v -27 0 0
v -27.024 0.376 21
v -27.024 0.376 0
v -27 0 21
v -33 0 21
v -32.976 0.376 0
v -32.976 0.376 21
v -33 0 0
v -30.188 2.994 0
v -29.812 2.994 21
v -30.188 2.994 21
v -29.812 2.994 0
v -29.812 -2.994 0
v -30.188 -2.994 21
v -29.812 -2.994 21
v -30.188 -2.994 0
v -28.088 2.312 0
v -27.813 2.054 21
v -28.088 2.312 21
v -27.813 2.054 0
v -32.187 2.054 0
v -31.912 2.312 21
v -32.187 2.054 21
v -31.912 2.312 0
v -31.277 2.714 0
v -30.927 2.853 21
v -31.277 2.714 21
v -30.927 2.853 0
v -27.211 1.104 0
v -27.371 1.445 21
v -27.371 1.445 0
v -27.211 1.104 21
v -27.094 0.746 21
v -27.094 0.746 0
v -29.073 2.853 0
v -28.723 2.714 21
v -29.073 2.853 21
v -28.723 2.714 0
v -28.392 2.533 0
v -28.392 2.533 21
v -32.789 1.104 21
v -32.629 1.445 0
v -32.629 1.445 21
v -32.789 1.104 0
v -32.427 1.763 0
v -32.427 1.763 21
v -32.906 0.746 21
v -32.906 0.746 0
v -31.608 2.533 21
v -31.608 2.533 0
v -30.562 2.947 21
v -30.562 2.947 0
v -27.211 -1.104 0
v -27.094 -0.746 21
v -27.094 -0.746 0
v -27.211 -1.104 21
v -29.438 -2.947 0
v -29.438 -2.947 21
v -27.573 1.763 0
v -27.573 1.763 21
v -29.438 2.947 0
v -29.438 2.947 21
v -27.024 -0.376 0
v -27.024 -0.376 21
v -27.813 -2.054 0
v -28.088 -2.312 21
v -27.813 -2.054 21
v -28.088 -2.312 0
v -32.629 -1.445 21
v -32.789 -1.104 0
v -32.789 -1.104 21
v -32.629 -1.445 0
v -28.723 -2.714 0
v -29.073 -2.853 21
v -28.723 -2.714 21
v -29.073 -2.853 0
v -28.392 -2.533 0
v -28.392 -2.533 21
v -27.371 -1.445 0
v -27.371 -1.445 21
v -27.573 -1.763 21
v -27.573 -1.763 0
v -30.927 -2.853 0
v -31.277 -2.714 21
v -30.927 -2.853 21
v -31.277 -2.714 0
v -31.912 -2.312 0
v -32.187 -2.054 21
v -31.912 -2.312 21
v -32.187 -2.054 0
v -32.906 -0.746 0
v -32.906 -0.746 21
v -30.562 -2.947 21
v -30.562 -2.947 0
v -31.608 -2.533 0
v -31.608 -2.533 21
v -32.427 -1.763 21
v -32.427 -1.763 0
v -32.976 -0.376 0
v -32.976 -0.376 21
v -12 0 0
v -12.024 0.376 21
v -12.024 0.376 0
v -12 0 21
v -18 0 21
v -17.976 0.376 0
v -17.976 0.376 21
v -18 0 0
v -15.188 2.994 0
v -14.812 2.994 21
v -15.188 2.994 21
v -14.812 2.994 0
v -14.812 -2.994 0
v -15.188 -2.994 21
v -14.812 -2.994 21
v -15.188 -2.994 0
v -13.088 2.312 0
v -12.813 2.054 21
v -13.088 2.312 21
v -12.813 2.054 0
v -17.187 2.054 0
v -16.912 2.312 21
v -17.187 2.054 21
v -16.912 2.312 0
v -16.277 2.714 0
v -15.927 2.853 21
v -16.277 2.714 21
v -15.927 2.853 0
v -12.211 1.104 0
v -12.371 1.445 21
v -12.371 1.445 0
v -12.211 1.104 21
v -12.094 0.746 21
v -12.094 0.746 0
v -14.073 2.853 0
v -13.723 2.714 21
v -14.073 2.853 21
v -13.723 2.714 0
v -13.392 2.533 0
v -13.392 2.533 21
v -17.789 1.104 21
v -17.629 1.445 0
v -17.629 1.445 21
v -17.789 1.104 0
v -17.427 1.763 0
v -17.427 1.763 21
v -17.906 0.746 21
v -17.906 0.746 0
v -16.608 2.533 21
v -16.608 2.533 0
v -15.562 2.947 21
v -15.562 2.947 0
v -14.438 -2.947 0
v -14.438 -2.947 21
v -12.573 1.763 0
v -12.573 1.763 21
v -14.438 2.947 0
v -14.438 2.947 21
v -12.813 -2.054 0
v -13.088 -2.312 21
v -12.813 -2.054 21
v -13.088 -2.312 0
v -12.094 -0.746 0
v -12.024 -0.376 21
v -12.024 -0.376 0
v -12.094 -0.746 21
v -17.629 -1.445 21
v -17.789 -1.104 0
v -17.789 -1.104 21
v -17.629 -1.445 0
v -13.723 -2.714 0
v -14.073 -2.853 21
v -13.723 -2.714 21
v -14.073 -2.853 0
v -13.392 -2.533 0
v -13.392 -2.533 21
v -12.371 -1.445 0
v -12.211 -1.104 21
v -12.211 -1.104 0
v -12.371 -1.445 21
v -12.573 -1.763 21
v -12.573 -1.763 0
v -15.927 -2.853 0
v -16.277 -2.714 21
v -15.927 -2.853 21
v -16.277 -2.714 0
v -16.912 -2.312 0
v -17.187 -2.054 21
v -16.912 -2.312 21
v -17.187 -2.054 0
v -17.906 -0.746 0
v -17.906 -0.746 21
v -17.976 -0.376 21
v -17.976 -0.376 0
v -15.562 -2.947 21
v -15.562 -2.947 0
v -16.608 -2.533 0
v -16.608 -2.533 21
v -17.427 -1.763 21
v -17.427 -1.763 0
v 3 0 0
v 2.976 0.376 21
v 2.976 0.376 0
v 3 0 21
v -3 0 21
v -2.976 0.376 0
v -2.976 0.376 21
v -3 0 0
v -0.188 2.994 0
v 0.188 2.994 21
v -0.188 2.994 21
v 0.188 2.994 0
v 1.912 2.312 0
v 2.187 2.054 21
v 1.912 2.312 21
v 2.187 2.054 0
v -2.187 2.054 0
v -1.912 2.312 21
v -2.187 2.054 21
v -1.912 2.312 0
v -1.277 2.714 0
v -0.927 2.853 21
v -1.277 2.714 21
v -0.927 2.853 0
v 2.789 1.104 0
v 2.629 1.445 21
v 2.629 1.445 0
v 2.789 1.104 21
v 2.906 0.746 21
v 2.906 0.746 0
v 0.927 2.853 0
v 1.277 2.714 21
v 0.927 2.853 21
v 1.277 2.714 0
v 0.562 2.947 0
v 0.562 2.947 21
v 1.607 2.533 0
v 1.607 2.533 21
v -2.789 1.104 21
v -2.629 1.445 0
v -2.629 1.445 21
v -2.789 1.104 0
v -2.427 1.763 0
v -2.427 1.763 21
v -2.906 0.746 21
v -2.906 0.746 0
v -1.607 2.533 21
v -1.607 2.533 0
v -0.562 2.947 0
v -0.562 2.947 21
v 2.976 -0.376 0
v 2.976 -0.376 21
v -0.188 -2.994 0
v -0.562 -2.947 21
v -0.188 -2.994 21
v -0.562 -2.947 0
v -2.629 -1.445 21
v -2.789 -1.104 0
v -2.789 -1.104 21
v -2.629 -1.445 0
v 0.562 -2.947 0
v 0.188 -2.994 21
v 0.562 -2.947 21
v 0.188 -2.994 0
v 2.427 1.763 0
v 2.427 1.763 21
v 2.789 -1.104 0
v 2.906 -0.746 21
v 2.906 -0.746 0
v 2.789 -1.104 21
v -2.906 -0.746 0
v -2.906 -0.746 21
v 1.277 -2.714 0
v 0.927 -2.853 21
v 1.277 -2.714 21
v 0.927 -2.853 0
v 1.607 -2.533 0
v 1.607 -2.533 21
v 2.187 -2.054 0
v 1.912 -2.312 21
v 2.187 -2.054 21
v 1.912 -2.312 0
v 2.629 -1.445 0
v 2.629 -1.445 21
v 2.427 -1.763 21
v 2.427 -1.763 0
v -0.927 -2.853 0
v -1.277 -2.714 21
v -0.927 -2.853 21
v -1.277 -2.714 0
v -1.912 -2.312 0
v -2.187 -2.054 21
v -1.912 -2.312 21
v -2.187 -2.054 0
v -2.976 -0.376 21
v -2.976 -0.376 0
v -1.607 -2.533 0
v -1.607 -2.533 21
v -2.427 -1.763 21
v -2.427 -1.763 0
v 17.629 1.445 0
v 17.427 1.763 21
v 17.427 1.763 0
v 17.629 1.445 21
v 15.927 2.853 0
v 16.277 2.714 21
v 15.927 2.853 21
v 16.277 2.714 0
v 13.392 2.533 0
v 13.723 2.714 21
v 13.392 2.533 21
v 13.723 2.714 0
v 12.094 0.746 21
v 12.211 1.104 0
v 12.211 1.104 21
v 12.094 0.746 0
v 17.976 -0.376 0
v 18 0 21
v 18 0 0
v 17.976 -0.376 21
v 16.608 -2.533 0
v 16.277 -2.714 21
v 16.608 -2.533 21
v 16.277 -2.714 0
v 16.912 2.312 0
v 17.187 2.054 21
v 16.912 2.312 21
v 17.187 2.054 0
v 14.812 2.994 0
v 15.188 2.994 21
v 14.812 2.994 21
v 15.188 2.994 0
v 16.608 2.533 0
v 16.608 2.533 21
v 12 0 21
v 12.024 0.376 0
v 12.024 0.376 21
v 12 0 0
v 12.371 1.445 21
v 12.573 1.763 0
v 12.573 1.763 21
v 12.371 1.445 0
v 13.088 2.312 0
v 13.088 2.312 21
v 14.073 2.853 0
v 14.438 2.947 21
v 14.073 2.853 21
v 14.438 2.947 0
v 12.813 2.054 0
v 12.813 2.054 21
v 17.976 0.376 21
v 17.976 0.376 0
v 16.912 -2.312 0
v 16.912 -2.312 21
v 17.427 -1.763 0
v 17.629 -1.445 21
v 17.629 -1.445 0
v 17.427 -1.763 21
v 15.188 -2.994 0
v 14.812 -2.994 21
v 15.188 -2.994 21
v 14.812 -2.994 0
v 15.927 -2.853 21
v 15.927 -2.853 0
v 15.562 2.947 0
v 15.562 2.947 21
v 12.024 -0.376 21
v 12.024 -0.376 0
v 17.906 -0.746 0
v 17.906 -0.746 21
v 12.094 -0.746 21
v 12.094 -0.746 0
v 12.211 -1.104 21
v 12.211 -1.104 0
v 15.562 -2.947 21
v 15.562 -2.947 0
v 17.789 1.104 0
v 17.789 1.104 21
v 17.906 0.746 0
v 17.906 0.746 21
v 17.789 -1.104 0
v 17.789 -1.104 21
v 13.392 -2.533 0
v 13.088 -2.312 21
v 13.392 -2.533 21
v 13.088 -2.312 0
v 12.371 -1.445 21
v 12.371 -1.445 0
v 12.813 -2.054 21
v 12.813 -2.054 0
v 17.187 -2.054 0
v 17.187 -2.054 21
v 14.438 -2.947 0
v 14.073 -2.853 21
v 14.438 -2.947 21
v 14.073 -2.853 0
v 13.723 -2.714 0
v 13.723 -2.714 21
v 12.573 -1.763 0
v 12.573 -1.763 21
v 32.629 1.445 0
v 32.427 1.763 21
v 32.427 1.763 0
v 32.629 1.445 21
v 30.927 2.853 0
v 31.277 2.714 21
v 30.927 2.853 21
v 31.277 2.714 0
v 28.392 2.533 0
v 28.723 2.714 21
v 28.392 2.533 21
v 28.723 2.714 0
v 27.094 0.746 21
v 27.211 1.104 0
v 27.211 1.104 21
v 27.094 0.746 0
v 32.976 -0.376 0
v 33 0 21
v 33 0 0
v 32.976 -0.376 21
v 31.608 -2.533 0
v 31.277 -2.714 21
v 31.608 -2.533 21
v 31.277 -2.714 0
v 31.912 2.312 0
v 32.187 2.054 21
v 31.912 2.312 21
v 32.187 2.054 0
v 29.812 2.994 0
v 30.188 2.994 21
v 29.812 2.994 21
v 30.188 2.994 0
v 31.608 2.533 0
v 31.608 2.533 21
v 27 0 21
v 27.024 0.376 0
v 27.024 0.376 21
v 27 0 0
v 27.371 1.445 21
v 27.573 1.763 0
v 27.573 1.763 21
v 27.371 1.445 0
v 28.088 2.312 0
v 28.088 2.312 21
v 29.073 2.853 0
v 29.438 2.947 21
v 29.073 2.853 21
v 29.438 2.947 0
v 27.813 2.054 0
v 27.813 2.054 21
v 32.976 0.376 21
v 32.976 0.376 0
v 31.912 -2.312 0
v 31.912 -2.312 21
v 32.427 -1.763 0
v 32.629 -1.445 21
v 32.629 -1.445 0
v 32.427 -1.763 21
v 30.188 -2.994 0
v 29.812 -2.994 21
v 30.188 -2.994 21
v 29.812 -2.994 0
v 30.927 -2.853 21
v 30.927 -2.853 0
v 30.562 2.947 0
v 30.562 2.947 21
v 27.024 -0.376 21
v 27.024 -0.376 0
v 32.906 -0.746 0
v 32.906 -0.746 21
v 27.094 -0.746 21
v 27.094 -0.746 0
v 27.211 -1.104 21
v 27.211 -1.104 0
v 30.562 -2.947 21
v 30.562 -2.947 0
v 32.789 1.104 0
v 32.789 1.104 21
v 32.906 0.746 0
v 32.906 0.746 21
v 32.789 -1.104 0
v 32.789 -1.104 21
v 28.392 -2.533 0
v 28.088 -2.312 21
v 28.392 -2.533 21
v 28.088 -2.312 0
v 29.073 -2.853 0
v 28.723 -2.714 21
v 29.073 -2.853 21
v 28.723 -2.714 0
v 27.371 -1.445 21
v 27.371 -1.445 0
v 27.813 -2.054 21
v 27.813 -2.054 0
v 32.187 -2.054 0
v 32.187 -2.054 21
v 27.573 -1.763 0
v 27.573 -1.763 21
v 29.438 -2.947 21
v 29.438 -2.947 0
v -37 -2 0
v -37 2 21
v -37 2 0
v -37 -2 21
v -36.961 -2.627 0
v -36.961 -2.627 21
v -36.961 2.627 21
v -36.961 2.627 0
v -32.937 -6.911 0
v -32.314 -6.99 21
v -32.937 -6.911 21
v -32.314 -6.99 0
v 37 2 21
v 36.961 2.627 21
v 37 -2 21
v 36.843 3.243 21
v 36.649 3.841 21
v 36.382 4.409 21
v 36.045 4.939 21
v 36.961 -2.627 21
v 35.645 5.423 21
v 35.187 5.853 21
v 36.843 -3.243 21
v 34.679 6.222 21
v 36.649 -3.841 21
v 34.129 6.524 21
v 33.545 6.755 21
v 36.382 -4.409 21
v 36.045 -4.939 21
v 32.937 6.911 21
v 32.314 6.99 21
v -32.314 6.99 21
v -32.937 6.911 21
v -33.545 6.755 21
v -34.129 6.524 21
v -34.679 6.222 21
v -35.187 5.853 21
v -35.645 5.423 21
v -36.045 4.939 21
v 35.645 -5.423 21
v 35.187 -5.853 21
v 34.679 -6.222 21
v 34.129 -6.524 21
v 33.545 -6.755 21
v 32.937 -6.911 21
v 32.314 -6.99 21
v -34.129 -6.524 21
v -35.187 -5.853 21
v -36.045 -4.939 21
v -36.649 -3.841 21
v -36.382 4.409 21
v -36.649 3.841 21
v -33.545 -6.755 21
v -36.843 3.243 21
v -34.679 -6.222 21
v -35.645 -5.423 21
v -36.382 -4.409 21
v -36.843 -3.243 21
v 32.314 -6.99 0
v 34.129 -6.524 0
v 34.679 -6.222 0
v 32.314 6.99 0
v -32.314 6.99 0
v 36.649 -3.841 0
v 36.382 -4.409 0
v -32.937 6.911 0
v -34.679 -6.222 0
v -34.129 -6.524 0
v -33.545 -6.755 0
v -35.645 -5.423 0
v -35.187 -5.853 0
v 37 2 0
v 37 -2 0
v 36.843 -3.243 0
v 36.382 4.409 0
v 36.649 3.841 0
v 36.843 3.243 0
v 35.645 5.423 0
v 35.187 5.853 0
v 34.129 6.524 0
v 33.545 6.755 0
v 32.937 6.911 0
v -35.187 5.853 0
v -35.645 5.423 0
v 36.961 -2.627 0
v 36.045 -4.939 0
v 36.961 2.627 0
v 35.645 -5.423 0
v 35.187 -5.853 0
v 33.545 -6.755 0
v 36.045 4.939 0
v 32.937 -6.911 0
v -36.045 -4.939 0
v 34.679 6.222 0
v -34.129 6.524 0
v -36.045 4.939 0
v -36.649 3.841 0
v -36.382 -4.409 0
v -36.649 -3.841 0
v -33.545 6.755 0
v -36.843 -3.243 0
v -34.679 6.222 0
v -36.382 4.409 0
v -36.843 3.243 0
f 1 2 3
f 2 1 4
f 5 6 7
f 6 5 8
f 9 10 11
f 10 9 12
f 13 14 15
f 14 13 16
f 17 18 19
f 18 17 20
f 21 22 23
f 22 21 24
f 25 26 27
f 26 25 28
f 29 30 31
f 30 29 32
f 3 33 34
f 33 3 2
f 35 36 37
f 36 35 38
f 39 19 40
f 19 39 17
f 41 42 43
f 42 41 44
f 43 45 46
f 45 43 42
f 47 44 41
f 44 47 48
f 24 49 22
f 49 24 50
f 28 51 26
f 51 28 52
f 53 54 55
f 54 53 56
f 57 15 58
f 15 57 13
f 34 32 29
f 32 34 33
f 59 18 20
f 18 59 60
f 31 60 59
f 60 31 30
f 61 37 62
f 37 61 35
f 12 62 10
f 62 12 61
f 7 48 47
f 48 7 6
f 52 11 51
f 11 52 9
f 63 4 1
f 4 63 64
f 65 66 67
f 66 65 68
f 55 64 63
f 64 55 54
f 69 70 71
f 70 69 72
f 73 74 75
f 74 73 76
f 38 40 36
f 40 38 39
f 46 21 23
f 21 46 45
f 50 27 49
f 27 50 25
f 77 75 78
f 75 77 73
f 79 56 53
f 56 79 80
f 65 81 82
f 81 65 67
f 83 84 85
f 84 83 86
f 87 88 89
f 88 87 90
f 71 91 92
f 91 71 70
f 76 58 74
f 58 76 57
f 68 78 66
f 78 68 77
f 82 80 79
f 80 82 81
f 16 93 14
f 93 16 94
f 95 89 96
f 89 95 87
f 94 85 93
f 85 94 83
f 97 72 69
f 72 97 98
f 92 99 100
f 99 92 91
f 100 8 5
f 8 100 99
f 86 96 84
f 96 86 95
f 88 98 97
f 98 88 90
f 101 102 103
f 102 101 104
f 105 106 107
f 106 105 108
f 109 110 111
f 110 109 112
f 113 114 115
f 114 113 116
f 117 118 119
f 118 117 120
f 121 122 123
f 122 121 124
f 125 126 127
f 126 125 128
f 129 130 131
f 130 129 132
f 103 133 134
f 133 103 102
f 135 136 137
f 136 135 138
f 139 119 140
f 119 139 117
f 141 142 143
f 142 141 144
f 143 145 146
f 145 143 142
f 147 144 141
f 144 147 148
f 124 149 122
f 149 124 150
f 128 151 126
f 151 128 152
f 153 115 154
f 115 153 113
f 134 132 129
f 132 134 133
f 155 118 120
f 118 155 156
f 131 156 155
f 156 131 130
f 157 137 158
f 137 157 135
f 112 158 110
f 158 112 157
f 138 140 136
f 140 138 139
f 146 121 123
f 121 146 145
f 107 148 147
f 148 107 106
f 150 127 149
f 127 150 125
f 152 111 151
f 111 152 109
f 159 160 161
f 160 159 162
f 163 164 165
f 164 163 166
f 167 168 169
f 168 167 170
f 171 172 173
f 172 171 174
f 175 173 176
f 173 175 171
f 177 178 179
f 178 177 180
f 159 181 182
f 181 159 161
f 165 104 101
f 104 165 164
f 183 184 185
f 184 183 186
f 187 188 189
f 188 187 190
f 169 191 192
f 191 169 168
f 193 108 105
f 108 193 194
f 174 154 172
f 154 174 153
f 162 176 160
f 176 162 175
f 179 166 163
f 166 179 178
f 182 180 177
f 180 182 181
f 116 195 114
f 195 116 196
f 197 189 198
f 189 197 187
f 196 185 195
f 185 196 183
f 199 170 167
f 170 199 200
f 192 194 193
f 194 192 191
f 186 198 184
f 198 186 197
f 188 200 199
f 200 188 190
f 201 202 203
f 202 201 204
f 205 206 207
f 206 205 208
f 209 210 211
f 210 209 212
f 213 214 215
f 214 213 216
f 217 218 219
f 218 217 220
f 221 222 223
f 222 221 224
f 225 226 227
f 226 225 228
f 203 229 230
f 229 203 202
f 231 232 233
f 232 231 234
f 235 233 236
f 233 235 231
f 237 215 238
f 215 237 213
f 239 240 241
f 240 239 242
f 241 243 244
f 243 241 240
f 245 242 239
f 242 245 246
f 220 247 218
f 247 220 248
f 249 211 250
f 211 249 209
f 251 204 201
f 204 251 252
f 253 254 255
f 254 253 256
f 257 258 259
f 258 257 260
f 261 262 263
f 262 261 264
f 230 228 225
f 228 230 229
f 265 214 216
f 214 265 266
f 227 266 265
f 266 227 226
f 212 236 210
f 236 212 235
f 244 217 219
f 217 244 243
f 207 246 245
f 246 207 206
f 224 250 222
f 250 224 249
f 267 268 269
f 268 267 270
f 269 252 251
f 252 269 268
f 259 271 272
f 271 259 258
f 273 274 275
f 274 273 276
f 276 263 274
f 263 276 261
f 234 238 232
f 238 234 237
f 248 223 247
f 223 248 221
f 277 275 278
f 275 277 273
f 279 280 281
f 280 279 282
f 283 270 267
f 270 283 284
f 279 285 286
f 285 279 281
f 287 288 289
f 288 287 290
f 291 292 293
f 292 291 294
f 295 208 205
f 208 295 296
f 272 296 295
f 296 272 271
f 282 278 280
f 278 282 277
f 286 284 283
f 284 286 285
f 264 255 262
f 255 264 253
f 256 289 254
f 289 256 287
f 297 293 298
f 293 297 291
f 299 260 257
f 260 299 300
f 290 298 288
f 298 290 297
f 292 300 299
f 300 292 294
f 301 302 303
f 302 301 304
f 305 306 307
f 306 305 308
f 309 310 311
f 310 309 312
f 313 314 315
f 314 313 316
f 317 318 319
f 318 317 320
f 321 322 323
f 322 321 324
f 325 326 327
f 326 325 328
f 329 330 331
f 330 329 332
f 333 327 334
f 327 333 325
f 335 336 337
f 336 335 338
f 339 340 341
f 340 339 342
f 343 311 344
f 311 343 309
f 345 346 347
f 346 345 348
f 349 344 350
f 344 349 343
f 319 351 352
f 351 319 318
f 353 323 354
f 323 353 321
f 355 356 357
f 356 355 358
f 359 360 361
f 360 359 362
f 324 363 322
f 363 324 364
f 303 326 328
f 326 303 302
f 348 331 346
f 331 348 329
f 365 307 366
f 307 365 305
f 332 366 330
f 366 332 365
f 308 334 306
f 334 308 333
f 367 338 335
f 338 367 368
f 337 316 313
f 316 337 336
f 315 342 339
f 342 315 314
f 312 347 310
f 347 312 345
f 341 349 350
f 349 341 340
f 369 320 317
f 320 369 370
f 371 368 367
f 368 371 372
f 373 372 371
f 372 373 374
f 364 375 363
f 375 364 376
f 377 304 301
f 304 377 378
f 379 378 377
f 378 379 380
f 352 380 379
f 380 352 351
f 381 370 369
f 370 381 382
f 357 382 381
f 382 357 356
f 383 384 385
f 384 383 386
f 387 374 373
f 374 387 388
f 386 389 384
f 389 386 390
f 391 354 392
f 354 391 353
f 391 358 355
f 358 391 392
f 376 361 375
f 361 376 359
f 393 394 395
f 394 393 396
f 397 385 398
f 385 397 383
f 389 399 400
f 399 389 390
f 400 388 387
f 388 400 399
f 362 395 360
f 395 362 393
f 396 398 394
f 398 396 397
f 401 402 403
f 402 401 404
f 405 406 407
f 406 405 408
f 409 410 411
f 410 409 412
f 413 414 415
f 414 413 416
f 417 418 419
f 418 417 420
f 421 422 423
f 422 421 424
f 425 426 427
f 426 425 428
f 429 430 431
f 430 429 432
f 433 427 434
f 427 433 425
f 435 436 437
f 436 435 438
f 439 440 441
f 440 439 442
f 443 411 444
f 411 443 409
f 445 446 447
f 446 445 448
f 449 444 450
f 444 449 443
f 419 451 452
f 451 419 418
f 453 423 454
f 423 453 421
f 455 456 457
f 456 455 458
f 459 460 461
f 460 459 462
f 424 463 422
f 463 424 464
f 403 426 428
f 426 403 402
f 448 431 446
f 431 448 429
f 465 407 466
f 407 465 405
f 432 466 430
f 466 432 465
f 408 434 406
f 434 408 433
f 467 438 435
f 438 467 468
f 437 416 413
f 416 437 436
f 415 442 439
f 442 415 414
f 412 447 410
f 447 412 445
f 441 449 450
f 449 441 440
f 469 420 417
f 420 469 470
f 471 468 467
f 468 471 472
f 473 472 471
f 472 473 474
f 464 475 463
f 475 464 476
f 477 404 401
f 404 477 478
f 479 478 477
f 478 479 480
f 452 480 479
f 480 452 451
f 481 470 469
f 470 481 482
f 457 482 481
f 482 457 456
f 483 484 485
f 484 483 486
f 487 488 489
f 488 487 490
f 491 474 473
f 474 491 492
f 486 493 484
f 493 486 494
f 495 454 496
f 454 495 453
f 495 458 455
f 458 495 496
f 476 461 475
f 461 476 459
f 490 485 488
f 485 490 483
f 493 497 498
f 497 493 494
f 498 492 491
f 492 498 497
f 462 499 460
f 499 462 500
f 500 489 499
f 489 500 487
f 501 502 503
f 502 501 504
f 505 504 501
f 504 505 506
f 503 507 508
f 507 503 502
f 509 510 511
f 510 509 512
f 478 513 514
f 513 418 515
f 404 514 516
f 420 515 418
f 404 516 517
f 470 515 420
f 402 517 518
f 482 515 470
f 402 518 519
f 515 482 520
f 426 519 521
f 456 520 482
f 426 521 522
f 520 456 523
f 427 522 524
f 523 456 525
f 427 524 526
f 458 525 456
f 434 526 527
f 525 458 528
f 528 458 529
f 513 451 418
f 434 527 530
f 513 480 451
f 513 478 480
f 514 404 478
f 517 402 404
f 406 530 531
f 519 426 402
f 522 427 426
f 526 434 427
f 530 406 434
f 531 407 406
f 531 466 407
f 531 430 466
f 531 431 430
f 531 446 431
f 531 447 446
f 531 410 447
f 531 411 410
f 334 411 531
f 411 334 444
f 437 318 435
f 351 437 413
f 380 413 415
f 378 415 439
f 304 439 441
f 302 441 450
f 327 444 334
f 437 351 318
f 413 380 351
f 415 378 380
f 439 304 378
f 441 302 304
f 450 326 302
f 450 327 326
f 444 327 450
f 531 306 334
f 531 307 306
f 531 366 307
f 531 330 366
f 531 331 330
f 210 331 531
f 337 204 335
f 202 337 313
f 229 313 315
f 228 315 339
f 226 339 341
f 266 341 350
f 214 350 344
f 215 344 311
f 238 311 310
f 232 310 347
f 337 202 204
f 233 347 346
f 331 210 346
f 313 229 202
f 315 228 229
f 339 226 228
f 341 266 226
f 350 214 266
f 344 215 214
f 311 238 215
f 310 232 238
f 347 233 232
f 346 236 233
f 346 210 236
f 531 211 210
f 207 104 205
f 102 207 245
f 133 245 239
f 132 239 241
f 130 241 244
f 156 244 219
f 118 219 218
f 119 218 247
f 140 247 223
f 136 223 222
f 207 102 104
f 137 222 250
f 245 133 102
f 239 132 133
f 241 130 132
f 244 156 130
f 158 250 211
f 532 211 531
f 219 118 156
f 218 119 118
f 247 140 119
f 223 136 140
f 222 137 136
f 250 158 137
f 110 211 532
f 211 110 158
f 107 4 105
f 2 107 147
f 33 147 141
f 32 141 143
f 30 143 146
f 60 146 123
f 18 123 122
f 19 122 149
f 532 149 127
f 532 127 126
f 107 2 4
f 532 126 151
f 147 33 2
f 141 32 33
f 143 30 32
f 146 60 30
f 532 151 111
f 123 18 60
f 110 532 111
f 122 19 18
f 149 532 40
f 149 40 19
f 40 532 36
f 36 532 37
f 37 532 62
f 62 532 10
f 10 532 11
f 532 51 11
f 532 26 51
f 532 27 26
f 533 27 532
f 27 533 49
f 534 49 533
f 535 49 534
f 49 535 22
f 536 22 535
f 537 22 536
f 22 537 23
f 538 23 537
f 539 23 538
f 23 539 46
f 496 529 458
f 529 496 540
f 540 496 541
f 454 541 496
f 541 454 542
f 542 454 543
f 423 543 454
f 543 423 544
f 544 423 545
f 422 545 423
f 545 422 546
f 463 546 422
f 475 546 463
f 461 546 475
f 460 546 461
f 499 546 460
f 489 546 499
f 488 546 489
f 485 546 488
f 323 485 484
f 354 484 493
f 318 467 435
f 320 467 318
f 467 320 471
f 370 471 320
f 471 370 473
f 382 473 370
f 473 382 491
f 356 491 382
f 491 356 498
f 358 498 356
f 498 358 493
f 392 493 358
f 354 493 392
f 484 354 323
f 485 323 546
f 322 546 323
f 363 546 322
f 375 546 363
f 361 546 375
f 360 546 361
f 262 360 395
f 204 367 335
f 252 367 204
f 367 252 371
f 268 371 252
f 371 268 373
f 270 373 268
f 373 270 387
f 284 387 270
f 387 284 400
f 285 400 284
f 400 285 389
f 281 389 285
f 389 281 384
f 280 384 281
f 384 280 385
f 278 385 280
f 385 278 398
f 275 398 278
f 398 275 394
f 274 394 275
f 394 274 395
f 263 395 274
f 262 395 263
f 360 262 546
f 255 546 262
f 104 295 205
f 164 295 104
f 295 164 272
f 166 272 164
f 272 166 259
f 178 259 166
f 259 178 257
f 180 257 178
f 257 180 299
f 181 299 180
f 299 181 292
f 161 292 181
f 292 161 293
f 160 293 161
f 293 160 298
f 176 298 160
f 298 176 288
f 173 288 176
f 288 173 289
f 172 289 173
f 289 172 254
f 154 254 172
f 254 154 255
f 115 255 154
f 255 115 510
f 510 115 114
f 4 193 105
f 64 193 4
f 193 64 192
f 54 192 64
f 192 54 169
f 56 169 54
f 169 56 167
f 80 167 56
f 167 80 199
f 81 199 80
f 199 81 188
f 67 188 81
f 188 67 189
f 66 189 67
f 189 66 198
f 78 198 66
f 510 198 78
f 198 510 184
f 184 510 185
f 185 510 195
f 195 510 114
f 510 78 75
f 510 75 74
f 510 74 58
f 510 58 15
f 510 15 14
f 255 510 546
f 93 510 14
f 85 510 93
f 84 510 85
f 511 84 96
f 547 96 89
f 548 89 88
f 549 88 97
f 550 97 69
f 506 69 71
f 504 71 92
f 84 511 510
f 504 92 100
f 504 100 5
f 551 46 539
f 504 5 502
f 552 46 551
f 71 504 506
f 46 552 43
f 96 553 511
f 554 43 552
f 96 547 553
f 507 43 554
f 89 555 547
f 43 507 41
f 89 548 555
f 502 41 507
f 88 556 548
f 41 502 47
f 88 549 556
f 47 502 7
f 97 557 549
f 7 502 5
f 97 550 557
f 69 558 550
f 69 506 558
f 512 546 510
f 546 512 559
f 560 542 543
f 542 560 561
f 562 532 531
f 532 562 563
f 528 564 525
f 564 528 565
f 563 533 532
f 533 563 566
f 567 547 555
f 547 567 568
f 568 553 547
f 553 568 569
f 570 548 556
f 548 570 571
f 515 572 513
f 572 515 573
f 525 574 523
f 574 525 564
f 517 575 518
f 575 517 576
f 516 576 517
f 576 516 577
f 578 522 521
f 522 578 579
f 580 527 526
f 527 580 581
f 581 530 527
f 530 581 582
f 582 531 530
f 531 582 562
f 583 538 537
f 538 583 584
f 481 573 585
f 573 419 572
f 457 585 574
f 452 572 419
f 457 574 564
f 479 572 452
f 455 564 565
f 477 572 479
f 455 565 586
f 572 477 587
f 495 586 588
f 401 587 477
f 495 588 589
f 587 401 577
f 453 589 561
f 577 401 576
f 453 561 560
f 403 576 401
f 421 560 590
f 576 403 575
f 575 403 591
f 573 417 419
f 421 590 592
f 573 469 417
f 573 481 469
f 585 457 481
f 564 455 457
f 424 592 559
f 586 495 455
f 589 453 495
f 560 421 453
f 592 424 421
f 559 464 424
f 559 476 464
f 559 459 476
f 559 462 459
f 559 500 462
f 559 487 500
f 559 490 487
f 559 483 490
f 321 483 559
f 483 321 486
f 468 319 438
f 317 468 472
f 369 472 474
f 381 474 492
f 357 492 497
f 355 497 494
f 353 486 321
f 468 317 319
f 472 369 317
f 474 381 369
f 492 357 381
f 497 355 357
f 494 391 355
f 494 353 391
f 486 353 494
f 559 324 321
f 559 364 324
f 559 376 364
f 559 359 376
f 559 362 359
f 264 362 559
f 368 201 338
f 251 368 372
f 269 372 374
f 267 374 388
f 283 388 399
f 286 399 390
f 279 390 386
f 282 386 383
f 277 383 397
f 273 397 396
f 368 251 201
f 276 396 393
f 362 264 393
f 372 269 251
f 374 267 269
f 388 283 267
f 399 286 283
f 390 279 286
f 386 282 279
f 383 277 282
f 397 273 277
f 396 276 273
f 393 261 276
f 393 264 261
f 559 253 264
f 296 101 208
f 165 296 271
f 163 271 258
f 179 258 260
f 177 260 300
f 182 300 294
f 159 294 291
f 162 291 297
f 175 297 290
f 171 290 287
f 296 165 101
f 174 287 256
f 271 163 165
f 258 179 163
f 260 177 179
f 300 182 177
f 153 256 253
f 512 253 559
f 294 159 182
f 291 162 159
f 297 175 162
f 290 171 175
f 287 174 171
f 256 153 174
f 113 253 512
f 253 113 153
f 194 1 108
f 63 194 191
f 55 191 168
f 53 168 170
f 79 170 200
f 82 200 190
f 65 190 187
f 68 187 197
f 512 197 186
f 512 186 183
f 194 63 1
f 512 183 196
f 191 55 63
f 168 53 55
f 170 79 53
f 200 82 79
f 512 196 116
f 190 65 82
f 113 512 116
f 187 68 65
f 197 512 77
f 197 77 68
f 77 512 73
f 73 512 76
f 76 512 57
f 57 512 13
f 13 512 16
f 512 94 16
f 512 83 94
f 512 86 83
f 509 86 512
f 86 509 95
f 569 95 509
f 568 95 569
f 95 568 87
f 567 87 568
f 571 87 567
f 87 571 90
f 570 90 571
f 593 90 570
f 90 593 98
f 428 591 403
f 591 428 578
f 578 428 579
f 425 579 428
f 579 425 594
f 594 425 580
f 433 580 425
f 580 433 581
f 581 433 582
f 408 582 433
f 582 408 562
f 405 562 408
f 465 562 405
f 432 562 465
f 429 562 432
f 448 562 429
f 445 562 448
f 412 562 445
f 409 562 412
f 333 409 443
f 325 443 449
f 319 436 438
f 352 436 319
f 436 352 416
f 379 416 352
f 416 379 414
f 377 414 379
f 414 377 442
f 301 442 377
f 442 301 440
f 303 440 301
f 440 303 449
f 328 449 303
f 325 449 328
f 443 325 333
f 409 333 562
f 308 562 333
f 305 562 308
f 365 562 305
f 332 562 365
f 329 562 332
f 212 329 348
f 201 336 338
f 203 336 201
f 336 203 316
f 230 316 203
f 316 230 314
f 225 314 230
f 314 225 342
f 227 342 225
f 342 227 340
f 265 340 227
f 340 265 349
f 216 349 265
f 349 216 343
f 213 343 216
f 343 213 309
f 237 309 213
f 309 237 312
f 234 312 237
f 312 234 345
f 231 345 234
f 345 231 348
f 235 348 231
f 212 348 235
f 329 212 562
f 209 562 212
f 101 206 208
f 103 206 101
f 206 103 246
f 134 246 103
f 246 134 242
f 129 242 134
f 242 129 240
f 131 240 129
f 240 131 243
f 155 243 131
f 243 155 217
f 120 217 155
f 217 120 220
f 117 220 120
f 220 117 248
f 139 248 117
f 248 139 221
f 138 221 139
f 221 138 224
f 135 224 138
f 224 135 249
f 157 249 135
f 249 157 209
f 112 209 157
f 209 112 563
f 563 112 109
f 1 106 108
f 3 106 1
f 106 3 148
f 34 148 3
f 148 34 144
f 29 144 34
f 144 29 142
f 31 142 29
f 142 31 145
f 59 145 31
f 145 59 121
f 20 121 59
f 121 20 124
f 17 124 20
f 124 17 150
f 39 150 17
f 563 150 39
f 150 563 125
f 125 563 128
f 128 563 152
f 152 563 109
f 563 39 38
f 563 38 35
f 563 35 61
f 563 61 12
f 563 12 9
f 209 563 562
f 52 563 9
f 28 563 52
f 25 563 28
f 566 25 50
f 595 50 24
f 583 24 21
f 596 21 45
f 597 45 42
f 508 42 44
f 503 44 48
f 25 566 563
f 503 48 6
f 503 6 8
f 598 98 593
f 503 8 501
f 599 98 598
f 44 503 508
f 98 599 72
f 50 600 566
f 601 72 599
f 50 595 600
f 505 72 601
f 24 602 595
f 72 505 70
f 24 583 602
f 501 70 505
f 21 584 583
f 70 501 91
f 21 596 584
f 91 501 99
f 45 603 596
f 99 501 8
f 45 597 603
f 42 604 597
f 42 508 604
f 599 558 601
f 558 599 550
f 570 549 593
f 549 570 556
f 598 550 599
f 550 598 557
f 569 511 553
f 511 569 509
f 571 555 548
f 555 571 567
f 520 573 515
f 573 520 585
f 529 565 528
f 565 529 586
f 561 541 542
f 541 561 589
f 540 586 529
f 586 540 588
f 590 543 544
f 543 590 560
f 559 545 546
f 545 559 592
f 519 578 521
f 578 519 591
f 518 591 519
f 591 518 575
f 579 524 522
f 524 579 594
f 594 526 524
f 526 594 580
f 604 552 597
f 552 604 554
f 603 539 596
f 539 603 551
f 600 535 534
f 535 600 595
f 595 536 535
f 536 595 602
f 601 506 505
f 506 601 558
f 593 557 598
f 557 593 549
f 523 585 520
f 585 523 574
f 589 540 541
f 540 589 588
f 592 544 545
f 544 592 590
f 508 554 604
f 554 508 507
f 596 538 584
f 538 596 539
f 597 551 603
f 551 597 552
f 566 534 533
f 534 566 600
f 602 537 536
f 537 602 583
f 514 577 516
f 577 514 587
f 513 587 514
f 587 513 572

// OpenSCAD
$fn = 50;


difference() {
	union() {
		hull() {
			translate(v = [-32.0000000000, 2.0000000000, 0]) {
				cylinder(h = 21, r = 5);
			}
			translate(v = [32.0000000000, 2.0000000000, 0]) {
				cylinder(h = 21, r = 5);
			}
			translate(v = [-32.0000000000, -2.0000000000, 0]) {
				cylinder(h = 21, r = 5);
			}
			translate(v = [32.0000000000, -2.0000000000, 0]) {
				cylinder(h = 21, r = 5);
			}
		}
	}
	union() {
		translate(v = [-30.0000000000, 0.0000000000, 0]) {
			translate(v = [0, 0, -100]) {
				cylinder(h = 200, r = 3.0000000000);
			}
		}
		translate(v = [-15.0000000000, 0.0000000000, 0]) {
			translate(v = [0, 0, -100]) {
				cylinder(h = 200, r = 3.0000000000);
			}
		}
		translate(v = [0, 0, -100]) {
			cylinder(h = 200, r = 3.0000000000);
		}
		translate(v = [15.0000000000, 0.0000000000, 0]) {
			translate(v = [0, 0, -100]) {
				cylinder(h = 200, r = 3.0000000000);
			}
		}
		translate(v = [30.0000000000, 0.0000000000, 0]) {
			translate(v = [0, 0, -100]) {
				cylinder(h = 200, r = 3.0000000000);
			}
		}
	}
}
